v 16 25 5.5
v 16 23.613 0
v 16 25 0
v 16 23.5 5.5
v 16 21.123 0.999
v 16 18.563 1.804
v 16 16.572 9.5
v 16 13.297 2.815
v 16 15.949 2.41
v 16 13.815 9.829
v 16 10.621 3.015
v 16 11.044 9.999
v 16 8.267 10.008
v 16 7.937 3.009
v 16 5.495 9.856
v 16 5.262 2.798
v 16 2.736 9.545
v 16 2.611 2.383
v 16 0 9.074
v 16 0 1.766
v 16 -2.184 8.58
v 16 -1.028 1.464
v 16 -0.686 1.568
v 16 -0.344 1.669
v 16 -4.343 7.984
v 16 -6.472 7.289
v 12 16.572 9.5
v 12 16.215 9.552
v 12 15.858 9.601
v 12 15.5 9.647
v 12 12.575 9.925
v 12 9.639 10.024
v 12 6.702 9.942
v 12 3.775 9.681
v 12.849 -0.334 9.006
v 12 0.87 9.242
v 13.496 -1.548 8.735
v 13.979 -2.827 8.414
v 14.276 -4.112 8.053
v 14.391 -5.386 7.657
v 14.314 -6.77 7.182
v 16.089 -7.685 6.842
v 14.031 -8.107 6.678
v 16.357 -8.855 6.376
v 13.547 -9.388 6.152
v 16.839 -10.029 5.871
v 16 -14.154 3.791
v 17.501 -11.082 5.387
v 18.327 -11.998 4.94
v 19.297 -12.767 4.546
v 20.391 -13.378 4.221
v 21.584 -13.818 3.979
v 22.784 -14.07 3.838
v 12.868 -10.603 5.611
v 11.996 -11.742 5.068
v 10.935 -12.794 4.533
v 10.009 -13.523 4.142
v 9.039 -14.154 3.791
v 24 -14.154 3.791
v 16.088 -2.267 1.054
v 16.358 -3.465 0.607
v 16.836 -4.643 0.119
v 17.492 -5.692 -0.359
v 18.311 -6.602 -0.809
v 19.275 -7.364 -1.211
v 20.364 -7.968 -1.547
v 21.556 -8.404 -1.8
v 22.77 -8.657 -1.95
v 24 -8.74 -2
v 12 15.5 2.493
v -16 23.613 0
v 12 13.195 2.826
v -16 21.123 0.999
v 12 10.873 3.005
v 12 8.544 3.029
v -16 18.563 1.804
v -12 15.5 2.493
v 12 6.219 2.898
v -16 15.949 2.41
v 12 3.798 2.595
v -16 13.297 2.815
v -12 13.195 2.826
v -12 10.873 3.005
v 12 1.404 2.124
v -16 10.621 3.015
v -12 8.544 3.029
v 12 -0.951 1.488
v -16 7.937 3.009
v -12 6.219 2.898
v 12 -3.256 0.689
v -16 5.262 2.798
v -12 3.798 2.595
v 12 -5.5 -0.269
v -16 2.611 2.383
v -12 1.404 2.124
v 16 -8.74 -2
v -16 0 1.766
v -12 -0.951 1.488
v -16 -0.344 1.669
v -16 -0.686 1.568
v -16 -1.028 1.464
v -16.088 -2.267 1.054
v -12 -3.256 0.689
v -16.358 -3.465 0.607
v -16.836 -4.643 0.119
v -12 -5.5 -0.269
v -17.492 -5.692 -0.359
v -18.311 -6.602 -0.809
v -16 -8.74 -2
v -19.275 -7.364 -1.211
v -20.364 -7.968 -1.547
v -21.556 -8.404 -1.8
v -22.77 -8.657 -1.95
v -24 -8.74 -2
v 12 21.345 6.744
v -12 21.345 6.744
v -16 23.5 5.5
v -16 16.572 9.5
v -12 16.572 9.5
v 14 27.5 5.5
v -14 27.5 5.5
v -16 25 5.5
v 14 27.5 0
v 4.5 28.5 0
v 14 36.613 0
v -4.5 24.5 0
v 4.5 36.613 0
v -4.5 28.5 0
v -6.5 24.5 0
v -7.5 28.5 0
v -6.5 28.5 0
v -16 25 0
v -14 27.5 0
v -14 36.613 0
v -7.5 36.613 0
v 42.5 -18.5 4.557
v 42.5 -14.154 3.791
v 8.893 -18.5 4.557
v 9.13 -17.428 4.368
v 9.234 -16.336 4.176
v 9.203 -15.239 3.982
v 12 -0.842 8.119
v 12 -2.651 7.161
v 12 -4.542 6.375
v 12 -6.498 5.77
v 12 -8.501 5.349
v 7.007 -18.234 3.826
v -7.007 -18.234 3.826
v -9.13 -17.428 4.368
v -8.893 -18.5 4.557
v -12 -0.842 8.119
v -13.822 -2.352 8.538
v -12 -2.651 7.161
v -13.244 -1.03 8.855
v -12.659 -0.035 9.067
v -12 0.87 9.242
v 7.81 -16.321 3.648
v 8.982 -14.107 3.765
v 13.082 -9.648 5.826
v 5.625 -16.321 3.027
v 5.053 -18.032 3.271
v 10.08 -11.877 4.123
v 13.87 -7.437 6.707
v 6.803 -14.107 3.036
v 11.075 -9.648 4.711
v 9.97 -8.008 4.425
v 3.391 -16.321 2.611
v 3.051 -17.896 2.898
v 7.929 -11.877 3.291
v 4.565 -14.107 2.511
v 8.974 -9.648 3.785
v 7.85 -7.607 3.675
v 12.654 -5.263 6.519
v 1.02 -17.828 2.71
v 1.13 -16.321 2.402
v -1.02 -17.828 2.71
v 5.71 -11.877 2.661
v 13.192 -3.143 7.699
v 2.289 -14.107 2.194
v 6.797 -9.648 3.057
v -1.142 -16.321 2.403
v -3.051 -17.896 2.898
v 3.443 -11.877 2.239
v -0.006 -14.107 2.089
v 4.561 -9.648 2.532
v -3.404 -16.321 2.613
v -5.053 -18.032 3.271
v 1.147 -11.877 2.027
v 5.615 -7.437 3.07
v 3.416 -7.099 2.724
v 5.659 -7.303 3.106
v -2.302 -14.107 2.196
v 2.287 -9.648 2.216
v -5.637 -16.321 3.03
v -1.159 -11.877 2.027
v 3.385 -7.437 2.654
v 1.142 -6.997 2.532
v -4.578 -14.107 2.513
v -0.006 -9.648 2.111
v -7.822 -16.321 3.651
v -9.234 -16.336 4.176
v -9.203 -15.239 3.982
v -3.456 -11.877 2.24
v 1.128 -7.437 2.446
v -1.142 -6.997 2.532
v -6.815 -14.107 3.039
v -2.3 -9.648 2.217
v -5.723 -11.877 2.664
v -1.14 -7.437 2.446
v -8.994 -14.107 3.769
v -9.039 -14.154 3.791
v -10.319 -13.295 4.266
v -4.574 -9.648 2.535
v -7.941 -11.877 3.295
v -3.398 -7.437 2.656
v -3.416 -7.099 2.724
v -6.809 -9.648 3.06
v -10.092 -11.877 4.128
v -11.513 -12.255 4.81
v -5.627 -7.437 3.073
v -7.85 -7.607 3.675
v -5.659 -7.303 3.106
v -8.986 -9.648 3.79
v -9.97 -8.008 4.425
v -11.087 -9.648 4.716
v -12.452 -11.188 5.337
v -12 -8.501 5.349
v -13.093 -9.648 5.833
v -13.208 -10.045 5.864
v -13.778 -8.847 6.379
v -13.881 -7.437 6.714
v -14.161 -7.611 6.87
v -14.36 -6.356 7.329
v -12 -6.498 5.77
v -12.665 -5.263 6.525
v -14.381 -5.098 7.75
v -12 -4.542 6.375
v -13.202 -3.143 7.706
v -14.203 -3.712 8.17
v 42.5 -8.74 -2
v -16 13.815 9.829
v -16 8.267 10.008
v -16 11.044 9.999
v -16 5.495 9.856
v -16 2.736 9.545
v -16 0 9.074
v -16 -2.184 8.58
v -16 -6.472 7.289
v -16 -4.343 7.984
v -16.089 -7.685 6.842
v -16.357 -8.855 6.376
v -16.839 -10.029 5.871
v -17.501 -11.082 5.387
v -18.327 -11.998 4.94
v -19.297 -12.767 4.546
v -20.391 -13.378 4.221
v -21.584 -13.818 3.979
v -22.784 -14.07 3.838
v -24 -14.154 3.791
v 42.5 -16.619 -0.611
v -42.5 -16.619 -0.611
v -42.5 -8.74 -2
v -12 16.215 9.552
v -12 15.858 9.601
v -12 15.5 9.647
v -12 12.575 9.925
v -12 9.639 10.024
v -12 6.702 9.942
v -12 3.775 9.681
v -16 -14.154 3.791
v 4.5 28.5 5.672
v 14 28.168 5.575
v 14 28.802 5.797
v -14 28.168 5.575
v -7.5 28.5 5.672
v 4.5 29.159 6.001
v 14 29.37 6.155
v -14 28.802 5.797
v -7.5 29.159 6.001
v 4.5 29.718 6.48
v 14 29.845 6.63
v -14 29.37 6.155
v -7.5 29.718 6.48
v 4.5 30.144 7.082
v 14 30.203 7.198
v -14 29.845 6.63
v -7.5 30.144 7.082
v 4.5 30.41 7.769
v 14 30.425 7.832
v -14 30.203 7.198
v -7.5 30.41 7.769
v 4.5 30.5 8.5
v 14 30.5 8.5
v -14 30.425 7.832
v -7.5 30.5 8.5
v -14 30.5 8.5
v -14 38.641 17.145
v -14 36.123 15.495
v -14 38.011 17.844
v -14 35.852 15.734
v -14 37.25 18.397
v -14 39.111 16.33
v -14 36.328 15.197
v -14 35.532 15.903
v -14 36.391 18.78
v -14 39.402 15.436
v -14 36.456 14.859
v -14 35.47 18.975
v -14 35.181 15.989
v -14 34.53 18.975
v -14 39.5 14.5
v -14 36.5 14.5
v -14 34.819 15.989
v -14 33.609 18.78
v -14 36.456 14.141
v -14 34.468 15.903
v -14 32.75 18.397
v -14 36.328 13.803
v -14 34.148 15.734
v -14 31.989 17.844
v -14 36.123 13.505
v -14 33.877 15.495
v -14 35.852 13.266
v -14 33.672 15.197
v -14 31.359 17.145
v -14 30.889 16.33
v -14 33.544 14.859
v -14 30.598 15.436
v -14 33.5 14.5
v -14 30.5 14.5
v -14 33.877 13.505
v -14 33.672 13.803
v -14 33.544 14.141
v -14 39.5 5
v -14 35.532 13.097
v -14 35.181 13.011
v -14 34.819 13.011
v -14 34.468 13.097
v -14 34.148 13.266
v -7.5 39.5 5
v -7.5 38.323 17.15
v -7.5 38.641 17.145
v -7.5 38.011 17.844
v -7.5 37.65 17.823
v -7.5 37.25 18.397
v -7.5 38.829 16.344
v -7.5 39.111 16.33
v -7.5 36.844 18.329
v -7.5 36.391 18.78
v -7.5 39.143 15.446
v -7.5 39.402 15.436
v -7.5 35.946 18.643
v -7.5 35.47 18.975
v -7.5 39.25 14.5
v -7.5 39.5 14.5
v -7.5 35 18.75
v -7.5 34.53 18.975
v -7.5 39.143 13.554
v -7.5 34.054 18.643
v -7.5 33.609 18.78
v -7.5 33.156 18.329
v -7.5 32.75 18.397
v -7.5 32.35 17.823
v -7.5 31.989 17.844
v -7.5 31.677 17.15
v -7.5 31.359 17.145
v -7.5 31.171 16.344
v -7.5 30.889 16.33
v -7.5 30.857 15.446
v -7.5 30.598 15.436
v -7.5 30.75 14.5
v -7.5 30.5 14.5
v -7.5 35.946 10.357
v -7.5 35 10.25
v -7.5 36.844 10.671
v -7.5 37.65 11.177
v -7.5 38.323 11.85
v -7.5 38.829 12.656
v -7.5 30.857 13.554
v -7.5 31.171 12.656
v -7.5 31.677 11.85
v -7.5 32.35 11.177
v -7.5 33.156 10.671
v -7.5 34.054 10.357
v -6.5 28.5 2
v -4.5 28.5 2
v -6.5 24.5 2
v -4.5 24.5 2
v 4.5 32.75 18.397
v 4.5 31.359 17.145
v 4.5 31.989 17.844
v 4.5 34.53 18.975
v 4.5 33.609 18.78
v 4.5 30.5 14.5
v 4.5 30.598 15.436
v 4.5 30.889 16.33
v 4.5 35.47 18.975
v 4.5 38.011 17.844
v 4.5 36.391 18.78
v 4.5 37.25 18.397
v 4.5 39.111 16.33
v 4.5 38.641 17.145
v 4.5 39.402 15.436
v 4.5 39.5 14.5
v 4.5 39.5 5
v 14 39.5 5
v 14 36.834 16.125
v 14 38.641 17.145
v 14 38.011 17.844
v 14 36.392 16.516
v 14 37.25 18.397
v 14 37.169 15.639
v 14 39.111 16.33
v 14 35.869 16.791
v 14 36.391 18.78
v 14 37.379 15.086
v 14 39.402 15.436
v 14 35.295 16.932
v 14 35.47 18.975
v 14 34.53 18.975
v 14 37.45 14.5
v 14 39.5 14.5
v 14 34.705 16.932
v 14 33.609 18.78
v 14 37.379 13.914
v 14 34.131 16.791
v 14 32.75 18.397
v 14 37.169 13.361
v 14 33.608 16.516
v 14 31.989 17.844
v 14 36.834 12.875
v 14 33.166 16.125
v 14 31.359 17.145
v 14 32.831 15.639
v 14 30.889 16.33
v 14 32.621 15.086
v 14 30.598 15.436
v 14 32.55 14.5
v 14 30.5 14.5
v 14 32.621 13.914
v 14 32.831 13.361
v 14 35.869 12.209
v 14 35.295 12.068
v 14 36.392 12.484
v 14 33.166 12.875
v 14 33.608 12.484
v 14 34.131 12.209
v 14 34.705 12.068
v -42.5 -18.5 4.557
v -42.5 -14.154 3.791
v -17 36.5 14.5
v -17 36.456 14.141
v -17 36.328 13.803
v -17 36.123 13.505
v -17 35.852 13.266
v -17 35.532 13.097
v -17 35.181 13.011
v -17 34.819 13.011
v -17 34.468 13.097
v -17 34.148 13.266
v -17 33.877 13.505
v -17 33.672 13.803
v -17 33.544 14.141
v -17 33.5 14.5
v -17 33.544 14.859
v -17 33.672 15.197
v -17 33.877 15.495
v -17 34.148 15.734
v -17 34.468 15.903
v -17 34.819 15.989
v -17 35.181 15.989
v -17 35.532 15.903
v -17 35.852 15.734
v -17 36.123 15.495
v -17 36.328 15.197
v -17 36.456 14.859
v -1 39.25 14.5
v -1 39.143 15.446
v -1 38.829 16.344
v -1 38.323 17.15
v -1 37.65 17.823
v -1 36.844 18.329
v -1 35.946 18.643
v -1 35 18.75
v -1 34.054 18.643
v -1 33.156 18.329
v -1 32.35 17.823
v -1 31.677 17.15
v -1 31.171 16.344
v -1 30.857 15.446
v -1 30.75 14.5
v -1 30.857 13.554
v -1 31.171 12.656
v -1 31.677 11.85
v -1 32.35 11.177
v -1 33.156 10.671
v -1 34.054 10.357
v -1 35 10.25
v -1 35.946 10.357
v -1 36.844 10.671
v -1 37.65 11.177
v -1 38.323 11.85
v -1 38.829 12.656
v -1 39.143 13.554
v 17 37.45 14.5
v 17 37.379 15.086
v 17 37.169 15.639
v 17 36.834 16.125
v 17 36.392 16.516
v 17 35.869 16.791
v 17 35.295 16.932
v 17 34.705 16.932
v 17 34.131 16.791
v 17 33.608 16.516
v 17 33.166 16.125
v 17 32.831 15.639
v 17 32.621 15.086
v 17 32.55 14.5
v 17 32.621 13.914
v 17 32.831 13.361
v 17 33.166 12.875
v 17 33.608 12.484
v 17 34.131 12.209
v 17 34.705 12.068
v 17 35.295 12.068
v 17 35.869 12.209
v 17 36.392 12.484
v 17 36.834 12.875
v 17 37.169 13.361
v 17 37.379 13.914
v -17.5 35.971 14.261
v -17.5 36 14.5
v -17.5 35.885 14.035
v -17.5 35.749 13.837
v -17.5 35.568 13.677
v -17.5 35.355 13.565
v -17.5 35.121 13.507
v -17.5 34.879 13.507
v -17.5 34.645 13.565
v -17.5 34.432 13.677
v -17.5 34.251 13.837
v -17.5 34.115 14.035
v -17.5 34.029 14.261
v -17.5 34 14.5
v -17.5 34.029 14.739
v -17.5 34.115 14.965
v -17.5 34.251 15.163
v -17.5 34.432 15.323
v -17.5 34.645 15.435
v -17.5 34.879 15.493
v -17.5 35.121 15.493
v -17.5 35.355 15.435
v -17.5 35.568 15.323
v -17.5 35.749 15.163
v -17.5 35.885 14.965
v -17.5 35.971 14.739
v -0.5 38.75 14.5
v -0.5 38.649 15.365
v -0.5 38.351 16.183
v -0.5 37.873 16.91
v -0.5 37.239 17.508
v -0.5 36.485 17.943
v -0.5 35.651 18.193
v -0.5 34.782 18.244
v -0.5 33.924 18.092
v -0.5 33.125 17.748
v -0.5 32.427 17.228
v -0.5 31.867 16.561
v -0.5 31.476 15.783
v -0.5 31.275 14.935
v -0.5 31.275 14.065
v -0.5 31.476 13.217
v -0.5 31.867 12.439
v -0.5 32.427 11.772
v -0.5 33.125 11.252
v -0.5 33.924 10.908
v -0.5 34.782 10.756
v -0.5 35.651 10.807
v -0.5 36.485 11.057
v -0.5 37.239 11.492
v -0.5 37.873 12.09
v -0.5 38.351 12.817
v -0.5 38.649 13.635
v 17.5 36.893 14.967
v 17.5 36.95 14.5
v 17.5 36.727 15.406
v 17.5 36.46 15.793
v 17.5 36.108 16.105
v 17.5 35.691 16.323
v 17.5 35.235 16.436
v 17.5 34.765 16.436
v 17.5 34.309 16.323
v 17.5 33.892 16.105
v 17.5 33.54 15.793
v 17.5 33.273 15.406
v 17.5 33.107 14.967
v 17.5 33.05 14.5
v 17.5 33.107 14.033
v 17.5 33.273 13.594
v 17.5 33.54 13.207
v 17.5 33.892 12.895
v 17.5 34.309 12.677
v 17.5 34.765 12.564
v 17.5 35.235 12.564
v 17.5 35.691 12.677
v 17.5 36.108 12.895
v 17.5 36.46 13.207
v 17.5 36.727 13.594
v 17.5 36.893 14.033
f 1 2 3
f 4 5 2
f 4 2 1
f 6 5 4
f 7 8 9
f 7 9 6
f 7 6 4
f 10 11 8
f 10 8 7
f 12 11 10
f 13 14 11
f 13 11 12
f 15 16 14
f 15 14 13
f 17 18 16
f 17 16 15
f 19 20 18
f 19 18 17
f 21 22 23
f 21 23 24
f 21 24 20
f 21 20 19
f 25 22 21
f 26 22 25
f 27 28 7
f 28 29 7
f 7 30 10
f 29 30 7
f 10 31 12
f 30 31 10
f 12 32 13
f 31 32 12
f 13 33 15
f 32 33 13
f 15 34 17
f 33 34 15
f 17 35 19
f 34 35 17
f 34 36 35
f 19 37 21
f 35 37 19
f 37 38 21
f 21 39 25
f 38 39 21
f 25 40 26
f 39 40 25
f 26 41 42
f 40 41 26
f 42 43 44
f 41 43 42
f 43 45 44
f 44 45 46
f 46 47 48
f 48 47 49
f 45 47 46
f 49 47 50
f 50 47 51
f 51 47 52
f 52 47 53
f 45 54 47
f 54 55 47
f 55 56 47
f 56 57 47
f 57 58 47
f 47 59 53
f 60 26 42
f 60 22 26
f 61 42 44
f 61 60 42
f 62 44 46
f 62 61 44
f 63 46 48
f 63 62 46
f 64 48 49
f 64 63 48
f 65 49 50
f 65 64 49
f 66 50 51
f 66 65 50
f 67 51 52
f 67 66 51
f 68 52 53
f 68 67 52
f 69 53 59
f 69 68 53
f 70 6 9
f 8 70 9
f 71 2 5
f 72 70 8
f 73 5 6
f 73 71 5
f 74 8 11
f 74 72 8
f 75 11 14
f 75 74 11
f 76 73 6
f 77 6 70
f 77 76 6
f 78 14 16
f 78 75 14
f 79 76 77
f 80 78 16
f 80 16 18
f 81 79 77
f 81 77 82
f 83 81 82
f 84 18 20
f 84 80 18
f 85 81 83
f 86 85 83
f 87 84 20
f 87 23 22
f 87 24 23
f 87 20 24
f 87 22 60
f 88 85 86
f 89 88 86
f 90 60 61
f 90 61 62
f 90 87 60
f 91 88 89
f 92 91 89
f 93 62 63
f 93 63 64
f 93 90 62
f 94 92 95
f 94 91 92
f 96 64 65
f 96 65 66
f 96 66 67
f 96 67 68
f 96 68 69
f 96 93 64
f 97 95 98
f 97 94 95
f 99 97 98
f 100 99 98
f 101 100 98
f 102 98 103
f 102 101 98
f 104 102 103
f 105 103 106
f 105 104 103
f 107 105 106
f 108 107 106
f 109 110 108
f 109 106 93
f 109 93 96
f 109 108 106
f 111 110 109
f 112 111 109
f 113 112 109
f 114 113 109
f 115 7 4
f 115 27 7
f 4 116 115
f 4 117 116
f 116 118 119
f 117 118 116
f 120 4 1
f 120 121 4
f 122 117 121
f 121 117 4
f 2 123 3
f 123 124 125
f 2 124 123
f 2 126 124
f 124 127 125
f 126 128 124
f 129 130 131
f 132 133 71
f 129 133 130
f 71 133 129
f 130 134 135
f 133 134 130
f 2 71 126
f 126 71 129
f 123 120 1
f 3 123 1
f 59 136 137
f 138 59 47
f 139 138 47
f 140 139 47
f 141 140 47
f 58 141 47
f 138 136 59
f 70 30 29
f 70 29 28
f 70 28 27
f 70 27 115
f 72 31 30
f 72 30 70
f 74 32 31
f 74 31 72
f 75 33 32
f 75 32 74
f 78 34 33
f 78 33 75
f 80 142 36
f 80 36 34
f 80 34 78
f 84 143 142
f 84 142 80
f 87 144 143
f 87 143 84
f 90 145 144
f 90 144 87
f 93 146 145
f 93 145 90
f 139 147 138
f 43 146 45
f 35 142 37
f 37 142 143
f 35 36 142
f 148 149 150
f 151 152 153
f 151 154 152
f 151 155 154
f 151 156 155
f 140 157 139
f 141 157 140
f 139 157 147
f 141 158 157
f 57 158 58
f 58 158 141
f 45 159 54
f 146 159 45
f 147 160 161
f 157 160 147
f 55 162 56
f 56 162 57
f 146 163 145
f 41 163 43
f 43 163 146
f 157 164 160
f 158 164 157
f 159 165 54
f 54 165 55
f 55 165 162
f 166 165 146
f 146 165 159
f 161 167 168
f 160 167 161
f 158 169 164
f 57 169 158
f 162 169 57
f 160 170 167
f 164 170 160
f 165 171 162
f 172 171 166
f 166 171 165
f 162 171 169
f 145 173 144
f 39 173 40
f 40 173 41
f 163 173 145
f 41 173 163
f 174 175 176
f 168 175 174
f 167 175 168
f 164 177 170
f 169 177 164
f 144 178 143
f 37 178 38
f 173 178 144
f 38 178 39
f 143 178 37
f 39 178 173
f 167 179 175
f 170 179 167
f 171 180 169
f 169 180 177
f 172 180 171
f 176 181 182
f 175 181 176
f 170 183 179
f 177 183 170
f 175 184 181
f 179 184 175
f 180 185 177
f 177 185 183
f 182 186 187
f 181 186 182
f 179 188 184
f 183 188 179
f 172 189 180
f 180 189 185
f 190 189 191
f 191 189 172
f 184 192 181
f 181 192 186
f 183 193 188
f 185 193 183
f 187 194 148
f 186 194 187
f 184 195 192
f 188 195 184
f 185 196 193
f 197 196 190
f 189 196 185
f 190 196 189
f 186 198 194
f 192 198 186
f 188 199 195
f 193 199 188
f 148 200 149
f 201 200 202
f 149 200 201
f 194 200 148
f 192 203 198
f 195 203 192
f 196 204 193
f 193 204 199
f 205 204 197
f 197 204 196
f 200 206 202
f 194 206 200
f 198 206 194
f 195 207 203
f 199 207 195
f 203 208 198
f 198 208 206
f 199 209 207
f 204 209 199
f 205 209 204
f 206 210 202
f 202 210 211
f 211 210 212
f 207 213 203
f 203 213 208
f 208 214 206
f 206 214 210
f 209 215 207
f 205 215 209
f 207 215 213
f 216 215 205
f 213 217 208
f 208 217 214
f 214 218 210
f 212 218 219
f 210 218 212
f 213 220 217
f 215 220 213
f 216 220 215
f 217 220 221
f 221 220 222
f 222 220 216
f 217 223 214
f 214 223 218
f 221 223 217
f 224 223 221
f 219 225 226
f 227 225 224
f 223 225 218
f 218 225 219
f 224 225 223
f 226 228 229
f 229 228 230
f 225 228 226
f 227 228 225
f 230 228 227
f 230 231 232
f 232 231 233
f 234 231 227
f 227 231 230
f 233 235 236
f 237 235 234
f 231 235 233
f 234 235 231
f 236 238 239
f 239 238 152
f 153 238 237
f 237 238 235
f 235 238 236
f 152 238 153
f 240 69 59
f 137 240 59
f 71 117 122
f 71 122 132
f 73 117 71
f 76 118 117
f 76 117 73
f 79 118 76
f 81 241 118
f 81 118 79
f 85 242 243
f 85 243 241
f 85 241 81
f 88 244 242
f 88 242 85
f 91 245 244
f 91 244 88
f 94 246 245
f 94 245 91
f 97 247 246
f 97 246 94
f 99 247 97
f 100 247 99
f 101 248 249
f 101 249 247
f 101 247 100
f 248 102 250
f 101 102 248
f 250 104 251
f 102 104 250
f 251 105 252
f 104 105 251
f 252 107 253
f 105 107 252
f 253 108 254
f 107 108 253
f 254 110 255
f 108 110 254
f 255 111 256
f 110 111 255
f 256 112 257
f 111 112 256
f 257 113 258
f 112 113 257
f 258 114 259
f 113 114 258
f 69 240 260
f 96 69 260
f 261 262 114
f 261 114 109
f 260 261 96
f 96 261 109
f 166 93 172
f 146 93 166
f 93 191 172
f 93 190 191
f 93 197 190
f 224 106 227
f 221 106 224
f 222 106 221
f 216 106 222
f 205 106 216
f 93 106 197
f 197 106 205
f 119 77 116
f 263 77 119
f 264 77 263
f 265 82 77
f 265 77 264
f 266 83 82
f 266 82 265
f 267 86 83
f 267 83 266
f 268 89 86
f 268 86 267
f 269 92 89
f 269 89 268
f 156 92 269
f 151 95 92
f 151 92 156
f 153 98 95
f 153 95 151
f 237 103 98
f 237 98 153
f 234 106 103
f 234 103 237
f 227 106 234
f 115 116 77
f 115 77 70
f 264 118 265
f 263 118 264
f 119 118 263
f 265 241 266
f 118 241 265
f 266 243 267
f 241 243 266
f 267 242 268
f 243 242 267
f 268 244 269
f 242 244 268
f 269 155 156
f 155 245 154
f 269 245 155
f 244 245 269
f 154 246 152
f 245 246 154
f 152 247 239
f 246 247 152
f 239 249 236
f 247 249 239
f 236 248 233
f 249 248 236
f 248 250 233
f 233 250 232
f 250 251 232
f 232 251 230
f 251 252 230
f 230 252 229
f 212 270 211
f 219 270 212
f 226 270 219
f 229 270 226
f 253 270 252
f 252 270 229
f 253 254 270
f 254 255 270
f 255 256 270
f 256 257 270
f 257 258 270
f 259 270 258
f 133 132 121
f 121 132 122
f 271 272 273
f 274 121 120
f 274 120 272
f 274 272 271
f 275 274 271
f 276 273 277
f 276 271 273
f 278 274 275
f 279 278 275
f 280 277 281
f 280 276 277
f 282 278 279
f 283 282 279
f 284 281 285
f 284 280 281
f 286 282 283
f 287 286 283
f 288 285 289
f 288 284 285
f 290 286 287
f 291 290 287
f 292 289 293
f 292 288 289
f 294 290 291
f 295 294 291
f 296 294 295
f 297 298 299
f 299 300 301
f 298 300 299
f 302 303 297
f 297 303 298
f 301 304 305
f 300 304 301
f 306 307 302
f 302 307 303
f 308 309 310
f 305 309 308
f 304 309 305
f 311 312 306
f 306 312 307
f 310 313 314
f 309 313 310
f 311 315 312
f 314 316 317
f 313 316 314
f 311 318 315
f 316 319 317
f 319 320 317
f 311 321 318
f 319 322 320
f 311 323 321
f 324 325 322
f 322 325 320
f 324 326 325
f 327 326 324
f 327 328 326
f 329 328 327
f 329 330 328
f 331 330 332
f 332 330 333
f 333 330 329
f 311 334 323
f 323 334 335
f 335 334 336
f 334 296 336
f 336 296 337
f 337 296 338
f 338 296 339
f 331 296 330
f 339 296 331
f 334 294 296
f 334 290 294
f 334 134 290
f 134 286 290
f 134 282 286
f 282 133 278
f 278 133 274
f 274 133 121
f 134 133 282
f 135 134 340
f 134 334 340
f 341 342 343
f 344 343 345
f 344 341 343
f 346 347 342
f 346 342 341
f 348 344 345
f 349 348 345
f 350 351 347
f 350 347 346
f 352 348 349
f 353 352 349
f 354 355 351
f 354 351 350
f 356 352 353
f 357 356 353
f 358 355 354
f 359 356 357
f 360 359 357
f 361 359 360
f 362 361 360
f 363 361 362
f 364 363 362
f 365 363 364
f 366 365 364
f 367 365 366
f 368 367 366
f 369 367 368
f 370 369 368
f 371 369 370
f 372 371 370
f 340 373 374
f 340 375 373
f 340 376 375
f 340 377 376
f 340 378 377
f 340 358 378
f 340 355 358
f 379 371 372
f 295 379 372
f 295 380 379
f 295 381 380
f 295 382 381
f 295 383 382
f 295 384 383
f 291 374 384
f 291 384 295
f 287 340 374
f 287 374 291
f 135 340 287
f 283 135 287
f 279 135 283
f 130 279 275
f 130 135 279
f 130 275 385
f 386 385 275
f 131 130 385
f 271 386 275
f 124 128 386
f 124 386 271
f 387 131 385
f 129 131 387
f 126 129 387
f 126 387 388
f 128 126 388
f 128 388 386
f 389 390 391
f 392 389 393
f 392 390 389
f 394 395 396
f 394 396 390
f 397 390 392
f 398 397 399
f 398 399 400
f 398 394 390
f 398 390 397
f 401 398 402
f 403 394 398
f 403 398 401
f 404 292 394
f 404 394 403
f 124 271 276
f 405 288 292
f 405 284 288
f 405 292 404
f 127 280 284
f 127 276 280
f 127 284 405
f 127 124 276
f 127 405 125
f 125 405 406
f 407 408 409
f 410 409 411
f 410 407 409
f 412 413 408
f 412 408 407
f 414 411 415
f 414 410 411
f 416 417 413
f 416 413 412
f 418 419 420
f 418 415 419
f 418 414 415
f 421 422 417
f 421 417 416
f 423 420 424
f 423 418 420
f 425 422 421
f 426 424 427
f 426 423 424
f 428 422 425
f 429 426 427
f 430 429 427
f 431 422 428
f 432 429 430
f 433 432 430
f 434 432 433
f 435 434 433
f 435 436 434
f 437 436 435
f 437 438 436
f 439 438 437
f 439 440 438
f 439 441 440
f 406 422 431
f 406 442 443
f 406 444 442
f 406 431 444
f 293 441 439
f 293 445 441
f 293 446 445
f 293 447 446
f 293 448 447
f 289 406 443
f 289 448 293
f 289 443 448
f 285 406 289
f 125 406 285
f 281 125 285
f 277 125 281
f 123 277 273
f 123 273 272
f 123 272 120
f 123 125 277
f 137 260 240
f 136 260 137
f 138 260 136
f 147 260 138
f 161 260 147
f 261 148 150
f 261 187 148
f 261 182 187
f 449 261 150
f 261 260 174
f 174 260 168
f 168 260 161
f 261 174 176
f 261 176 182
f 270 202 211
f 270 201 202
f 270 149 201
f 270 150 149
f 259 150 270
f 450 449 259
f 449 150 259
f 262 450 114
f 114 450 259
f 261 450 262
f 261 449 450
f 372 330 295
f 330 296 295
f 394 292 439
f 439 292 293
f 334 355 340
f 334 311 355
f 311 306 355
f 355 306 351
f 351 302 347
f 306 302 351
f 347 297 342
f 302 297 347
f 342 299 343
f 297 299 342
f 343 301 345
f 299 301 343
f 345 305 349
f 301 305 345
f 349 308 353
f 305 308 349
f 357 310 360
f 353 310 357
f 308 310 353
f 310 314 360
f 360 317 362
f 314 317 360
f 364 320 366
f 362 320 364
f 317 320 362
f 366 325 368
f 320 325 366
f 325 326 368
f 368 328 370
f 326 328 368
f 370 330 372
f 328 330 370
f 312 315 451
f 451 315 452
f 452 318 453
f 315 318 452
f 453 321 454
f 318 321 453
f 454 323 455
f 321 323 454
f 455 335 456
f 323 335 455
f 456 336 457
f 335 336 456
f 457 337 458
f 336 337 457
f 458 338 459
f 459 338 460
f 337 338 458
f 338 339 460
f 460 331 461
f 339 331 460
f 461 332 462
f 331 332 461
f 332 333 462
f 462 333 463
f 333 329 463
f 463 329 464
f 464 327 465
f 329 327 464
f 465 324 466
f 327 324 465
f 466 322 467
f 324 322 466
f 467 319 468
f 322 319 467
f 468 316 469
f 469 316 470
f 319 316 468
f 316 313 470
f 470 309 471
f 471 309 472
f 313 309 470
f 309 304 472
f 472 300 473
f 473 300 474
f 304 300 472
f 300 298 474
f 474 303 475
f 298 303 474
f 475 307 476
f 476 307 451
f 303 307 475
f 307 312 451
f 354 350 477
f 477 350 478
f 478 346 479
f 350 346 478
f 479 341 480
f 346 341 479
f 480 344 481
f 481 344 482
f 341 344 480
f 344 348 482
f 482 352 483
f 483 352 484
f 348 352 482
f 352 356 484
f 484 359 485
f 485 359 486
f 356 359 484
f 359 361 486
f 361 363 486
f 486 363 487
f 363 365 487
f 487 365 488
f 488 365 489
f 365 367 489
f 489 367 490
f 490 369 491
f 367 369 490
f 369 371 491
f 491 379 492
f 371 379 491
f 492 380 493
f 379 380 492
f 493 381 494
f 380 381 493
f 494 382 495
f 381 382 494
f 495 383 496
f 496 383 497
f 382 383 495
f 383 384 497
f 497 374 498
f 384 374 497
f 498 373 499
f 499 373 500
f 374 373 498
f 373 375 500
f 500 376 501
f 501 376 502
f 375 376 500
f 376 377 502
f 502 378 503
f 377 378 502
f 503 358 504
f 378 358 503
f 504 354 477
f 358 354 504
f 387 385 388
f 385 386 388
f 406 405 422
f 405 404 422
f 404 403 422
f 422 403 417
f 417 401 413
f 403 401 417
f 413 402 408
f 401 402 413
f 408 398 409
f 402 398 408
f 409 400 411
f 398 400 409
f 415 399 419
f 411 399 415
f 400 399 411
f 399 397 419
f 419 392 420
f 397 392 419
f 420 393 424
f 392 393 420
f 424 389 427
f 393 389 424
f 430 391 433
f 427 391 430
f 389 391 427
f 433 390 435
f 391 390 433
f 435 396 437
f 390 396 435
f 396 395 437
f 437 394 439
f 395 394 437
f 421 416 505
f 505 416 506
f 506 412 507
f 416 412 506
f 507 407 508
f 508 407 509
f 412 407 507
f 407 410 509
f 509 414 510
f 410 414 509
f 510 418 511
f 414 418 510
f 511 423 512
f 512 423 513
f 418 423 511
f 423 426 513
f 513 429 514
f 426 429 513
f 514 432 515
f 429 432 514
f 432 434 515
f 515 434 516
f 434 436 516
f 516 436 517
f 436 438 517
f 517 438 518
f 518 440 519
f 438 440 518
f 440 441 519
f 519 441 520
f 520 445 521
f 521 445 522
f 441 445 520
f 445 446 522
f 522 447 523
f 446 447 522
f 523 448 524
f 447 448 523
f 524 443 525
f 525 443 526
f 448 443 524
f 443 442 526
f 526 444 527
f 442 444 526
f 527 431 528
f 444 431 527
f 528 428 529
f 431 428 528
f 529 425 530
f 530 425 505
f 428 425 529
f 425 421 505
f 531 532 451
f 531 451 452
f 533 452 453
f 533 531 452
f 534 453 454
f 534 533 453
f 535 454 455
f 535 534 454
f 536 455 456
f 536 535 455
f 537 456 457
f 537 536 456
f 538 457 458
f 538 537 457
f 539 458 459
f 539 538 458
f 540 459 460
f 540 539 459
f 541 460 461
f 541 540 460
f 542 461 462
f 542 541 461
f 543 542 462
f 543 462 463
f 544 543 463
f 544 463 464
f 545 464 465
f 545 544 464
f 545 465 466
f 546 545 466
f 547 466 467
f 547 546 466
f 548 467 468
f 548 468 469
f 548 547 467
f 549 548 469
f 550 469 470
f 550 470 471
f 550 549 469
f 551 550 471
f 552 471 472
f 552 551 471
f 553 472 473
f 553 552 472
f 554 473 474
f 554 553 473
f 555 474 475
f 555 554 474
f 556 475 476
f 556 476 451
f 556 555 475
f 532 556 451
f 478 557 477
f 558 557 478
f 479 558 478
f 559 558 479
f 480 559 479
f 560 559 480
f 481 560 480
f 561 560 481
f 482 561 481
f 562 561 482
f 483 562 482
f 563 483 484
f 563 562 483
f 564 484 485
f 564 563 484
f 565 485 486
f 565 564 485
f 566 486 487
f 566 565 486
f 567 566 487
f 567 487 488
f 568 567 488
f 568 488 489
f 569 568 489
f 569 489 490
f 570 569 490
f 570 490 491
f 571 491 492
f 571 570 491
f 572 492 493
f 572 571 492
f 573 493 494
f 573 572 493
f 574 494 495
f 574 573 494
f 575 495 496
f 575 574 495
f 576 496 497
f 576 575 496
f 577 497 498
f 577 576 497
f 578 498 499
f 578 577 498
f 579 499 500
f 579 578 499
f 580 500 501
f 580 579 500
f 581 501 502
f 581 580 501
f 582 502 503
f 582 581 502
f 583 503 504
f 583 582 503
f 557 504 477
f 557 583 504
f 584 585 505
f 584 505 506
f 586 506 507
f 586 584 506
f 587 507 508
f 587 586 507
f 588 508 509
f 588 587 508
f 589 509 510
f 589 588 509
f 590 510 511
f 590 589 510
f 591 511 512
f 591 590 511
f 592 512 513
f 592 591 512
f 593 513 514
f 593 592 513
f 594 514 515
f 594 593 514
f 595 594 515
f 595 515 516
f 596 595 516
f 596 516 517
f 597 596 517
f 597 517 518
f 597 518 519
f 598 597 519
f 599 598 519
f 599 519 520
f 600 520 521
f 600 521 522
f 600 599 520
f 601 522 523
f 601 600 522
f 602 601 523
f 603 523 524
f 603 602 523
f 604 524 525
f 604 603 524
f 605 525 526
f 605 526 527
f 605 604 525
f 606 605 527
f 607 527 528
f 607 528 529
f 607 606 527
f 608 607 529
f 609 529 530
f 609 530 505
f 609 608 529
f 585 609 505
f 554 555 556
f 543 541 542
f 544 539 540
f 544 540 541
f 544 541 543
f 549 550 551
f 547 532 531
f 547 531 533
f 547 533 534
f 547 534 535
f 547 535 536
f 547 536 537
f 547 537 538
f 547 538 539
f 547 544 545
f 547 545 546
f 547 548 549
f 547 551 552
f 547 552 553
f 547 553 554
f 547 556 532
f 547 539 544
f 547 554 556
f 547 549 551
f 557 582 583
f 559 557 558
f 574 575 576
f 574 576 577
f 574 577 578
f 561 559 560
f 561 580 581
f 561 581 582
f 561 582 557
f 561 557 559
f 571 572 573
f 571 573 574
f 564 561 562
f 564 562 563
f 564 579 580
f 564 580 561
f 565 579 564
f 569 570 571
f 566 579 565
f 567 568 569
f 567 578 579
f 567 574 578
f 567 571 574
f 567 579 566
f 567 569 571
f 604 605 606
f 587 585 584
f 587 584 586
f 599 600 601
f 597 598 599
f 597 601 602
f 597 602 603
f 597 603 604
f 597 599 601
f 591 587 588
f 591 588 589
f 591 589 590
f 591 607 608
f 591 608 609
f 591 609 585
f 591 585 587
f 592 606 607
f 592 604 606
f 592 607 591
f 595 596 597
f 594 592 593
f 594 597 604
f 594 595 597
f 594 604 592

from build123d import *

# Parameters (mm, degrees)
PAD_DEPTH            = 42.5
SKETCH001_W          = 11
SKETCH001_H          = 12
POCKET_DEPTH         = 19.001
POCKET001_DEPTH      = 229.0486136499
SKETCH003_W          = 21
SKETCH003_H          = 24
POCKET002_DEPTH      = 19.001
POCKET002_DEPTH_BACK = 2.001
POCKET003_DEPTH      = 26.5
SKETCH006_R          = 2.45
PAD001_DEPTH         = 3.5
SKETCH007_R          = 1.5
PAD002_DEPTH         = 3.5
SKETCH008_R          = 4.25
PAD003_DEPTH         = 7
SKETCH009_W          = 24
SKETCH009_H          = 5.7855610815
POCKET004_DEPTH      = 38.3792032733
SKETCH010_W          = 24
SKETCH010_H          = 3.7173874083
POCKET005_DEPTH      = 23.1222095644
SKETCH011_W          = 2
SKETCH011_H          = 4
POCKET006_DEPTH      = 2
CHAMFER_SIZE         = 0.5
FILLET_R             = 8


with BuildPart() as part:
    # Sketch → Pad (new body, symmetric)
    with BuildSketch(Plane.YZ):
        with BuildLine():
            Line((23.6132486541, 0), (36.6132486541, 0))
            Line((36.6132486541, 0), (39.5, 5))
            Line((39.5, 5), (39.5, 14.5))
            ThreePointArc((39.5, 14.5), (35, 19), (30.5, 14.5))
            Line((30.5, 14.5), (30.5, 8.5))
            ThreePointArc((27.5, 5.5), (29.6213203436, 6.3786796564), (30.5, 8.5))
            Line((27.5, 5.5), (23.5, 5.5))
            Line((23.5, 5.5), (16.5717967697, 9.5))
            ThreePointArc((16.5717967697, 9.5), (0.731487802, 9.2160988481), (-14.1535861905, 3.7911048117))
            Line((-18.5, 4.5574948357), (-14.1535861905, 3.7911048117))
            Line((-16.6188892117, -0.6108145787), (-18.5, 4.5574948357))
            Line((-8.7404271876, -2), (-16.6188892117, -0.6108145787))
            ThreePointArc((23.6132486541, 0), (7.1909178254, 2.97129898), (-8.7404271876, -2))
        make_face()
    extrude(amount=PAD_DEPTH, both=True)

    # Sketch001 (on Face1 of Pad) → Pocket (cut, through all)
    with BuildSketch(Plane.YX):
        with Locations((34, -1.5)):
            Rectangle(SKETCH001_W, SKETCH001_H)
    extrude(amount=-POCKET_DEPTH, mode=Mode.SUBTRACT)

    # Sketch002 (on Face1 of Pocket) → Pocket001 (cut, through all)
    with BuildSketch(Plane.YX):
        Polygon((0, 42.5), (39.5, 42.5), (39.5, 14), (27.5, 14), (25, 16), (0, 16), align=None)
    pocket001 = extrude(amount=-POCKET001_DEPTH, mode=Mode.SUBTRACT)

    # Mirrored: Pocket001 across YZ
    add(pocket001.mirror(Plane.YZ), mode=Mode.SUBTRACT)

    # Sketch003 (on Face1 of Mirrored) → Pocket002 (cut, two sides)
    with BuildSketch(Plane.YX) as pocket002_sk:
        with Locations((5, 0)):
            Rectangle(SKETCH003_W, SKETCH003_H)
    extrude(amount=-POCKET002_DEPTH, mode=Mode.SUBTRACT)
    extrude(pocket002_sk.sketch, amount=POCKET002_DEPTH_BACK, mode=Mode.SUBTRACT)

    # Sketch004 (on Face28 of Pocket002) → Pocket003 (cut)
    with BuildSketch(Plane.YZ.offset(42.5)):
        Polygon((0, 9.0743034734), (0, -11.3506822755), (-19.0919866044, 9.0743034734), align=None)
    pocket003 = extrude(amount=-POCKET003_DEPTH, mode=Mode.SUBTRACT)

    # Mirrored001: Pocket003 across YZ
    add(pocket003.mirror(Plane.YZ), mode=Mode.SUBTRACT)

    # Sketch006 (on Face9 of Mirrored001) → Pad001 (join)
    with BuildSketch(Plane.YZ.offset(14)):
        with Locations((35, 14.5)):
            Circle(SKETCH006_R)
    extrude(amount=PAD001_DEPTH)

    # Sketch007 (on Face4 of Pad001) → Pad002 (join)
    with BuildSketch(Plane(origin=(-14, 0, 0), x_dir=(0, 1, 0), z_dir=(-1, 0, 0))):
        with Locations((35, -14.5)):
            Circle(SKETCH007_R)
    extrude(amount=PAD002_DEPTH)

    # Sketch008 (on Face6 of Pad002) → Pad003 (join)
    with BuildSketch(Plane.YZ.offset(-7.5)):
        with Locations((35, 14.5)):
            Circle(SKETCH008_R)
    extrude(amount=PAD003_DEPTH)

    # Sketch009 (on DatumPlane) → Pocket004 (cut, through all)
    with BuildSketch(Plane(origin=(4.6666666667, 24.8333333333, 3.6666666667), x_dir=(-1, 0, 0), z_dir=(0, 0.8087360843, 0.5881716977))):
        with Locations((4.6666666667, 7.4335939838)):
            Rectangle(SKETCH009_W, SKETCH009_H)
    extrude(amount=-POCKET004_DEPTH, mode=Mode.SUBTRACT)

    # Sketch010 (on DatumPlane) → Pocket005 (cut, through all)
    with BuildSketch(Plane(origin=(-5.3333333333, -6.5801423959, -0.8458036702), x_dir=(1, 0, 0), z_dir=(0, -0.4712379677, 0.8820061099))):
        with Locations((5.3333333333, 3.0833364632)):
            Rectangle(SKETCH010_W, SKETCH010_H)
    extrude(amount=POCKET005_DEPTH, mode=Mode.SUBTRACT)

    # Sphere → Sphere (revolve, cut)
    with BuildSketch(Plane(origin=(0, -12, 27), x_dir=(0, 0, 1), z_dir=(-1, 0, 0))):
        with BuildLine():
            ThreePointArc((0, -25), (25, 0), (0, 25))
            Line((0, 25), (0, -25))
        make_face()
    revolve(axis=Axis((0, -12, 27), (0, 1, 0)), mode=Mode.SUBTRACT)

    # Sketch011 (on Face1 of Sphere) → Pocket006 (cut)
    with BuildSketch(Plane(origin=(0, -12, 0), x_dir=(-1, 0, 0), z_dir=(0, 0, -1))):
        with Locations((5.5, 38.5)):
            Rectangle(SKETCH011_W, SKETCH011_H)
    extrude(amount=-POCKET006_DEPTH, mode=Mode.SUBTRACT)

    # Chamfer
    chamfer_edges = [part.edges().sort_by_distance(p)[0] for p in [
        (17.5, 32.55, 14.5),
        (-0.5, 30.75, 14.5),
        (-17.5, 33.5, 14.5),
    ]]
    chamfer(chamfer_edges, length=CHAMFER_SIZE)

    # Fillet
    fillet_edges = [part.edges().sort_by_distance(p)[0] for p in [
        (16, -11.447007, 0.895552),
        (-16, -11.447007, 0.895552),
    ]]
    fillet(fillet_edges, radius=FILLET_R)


solid = part.part
